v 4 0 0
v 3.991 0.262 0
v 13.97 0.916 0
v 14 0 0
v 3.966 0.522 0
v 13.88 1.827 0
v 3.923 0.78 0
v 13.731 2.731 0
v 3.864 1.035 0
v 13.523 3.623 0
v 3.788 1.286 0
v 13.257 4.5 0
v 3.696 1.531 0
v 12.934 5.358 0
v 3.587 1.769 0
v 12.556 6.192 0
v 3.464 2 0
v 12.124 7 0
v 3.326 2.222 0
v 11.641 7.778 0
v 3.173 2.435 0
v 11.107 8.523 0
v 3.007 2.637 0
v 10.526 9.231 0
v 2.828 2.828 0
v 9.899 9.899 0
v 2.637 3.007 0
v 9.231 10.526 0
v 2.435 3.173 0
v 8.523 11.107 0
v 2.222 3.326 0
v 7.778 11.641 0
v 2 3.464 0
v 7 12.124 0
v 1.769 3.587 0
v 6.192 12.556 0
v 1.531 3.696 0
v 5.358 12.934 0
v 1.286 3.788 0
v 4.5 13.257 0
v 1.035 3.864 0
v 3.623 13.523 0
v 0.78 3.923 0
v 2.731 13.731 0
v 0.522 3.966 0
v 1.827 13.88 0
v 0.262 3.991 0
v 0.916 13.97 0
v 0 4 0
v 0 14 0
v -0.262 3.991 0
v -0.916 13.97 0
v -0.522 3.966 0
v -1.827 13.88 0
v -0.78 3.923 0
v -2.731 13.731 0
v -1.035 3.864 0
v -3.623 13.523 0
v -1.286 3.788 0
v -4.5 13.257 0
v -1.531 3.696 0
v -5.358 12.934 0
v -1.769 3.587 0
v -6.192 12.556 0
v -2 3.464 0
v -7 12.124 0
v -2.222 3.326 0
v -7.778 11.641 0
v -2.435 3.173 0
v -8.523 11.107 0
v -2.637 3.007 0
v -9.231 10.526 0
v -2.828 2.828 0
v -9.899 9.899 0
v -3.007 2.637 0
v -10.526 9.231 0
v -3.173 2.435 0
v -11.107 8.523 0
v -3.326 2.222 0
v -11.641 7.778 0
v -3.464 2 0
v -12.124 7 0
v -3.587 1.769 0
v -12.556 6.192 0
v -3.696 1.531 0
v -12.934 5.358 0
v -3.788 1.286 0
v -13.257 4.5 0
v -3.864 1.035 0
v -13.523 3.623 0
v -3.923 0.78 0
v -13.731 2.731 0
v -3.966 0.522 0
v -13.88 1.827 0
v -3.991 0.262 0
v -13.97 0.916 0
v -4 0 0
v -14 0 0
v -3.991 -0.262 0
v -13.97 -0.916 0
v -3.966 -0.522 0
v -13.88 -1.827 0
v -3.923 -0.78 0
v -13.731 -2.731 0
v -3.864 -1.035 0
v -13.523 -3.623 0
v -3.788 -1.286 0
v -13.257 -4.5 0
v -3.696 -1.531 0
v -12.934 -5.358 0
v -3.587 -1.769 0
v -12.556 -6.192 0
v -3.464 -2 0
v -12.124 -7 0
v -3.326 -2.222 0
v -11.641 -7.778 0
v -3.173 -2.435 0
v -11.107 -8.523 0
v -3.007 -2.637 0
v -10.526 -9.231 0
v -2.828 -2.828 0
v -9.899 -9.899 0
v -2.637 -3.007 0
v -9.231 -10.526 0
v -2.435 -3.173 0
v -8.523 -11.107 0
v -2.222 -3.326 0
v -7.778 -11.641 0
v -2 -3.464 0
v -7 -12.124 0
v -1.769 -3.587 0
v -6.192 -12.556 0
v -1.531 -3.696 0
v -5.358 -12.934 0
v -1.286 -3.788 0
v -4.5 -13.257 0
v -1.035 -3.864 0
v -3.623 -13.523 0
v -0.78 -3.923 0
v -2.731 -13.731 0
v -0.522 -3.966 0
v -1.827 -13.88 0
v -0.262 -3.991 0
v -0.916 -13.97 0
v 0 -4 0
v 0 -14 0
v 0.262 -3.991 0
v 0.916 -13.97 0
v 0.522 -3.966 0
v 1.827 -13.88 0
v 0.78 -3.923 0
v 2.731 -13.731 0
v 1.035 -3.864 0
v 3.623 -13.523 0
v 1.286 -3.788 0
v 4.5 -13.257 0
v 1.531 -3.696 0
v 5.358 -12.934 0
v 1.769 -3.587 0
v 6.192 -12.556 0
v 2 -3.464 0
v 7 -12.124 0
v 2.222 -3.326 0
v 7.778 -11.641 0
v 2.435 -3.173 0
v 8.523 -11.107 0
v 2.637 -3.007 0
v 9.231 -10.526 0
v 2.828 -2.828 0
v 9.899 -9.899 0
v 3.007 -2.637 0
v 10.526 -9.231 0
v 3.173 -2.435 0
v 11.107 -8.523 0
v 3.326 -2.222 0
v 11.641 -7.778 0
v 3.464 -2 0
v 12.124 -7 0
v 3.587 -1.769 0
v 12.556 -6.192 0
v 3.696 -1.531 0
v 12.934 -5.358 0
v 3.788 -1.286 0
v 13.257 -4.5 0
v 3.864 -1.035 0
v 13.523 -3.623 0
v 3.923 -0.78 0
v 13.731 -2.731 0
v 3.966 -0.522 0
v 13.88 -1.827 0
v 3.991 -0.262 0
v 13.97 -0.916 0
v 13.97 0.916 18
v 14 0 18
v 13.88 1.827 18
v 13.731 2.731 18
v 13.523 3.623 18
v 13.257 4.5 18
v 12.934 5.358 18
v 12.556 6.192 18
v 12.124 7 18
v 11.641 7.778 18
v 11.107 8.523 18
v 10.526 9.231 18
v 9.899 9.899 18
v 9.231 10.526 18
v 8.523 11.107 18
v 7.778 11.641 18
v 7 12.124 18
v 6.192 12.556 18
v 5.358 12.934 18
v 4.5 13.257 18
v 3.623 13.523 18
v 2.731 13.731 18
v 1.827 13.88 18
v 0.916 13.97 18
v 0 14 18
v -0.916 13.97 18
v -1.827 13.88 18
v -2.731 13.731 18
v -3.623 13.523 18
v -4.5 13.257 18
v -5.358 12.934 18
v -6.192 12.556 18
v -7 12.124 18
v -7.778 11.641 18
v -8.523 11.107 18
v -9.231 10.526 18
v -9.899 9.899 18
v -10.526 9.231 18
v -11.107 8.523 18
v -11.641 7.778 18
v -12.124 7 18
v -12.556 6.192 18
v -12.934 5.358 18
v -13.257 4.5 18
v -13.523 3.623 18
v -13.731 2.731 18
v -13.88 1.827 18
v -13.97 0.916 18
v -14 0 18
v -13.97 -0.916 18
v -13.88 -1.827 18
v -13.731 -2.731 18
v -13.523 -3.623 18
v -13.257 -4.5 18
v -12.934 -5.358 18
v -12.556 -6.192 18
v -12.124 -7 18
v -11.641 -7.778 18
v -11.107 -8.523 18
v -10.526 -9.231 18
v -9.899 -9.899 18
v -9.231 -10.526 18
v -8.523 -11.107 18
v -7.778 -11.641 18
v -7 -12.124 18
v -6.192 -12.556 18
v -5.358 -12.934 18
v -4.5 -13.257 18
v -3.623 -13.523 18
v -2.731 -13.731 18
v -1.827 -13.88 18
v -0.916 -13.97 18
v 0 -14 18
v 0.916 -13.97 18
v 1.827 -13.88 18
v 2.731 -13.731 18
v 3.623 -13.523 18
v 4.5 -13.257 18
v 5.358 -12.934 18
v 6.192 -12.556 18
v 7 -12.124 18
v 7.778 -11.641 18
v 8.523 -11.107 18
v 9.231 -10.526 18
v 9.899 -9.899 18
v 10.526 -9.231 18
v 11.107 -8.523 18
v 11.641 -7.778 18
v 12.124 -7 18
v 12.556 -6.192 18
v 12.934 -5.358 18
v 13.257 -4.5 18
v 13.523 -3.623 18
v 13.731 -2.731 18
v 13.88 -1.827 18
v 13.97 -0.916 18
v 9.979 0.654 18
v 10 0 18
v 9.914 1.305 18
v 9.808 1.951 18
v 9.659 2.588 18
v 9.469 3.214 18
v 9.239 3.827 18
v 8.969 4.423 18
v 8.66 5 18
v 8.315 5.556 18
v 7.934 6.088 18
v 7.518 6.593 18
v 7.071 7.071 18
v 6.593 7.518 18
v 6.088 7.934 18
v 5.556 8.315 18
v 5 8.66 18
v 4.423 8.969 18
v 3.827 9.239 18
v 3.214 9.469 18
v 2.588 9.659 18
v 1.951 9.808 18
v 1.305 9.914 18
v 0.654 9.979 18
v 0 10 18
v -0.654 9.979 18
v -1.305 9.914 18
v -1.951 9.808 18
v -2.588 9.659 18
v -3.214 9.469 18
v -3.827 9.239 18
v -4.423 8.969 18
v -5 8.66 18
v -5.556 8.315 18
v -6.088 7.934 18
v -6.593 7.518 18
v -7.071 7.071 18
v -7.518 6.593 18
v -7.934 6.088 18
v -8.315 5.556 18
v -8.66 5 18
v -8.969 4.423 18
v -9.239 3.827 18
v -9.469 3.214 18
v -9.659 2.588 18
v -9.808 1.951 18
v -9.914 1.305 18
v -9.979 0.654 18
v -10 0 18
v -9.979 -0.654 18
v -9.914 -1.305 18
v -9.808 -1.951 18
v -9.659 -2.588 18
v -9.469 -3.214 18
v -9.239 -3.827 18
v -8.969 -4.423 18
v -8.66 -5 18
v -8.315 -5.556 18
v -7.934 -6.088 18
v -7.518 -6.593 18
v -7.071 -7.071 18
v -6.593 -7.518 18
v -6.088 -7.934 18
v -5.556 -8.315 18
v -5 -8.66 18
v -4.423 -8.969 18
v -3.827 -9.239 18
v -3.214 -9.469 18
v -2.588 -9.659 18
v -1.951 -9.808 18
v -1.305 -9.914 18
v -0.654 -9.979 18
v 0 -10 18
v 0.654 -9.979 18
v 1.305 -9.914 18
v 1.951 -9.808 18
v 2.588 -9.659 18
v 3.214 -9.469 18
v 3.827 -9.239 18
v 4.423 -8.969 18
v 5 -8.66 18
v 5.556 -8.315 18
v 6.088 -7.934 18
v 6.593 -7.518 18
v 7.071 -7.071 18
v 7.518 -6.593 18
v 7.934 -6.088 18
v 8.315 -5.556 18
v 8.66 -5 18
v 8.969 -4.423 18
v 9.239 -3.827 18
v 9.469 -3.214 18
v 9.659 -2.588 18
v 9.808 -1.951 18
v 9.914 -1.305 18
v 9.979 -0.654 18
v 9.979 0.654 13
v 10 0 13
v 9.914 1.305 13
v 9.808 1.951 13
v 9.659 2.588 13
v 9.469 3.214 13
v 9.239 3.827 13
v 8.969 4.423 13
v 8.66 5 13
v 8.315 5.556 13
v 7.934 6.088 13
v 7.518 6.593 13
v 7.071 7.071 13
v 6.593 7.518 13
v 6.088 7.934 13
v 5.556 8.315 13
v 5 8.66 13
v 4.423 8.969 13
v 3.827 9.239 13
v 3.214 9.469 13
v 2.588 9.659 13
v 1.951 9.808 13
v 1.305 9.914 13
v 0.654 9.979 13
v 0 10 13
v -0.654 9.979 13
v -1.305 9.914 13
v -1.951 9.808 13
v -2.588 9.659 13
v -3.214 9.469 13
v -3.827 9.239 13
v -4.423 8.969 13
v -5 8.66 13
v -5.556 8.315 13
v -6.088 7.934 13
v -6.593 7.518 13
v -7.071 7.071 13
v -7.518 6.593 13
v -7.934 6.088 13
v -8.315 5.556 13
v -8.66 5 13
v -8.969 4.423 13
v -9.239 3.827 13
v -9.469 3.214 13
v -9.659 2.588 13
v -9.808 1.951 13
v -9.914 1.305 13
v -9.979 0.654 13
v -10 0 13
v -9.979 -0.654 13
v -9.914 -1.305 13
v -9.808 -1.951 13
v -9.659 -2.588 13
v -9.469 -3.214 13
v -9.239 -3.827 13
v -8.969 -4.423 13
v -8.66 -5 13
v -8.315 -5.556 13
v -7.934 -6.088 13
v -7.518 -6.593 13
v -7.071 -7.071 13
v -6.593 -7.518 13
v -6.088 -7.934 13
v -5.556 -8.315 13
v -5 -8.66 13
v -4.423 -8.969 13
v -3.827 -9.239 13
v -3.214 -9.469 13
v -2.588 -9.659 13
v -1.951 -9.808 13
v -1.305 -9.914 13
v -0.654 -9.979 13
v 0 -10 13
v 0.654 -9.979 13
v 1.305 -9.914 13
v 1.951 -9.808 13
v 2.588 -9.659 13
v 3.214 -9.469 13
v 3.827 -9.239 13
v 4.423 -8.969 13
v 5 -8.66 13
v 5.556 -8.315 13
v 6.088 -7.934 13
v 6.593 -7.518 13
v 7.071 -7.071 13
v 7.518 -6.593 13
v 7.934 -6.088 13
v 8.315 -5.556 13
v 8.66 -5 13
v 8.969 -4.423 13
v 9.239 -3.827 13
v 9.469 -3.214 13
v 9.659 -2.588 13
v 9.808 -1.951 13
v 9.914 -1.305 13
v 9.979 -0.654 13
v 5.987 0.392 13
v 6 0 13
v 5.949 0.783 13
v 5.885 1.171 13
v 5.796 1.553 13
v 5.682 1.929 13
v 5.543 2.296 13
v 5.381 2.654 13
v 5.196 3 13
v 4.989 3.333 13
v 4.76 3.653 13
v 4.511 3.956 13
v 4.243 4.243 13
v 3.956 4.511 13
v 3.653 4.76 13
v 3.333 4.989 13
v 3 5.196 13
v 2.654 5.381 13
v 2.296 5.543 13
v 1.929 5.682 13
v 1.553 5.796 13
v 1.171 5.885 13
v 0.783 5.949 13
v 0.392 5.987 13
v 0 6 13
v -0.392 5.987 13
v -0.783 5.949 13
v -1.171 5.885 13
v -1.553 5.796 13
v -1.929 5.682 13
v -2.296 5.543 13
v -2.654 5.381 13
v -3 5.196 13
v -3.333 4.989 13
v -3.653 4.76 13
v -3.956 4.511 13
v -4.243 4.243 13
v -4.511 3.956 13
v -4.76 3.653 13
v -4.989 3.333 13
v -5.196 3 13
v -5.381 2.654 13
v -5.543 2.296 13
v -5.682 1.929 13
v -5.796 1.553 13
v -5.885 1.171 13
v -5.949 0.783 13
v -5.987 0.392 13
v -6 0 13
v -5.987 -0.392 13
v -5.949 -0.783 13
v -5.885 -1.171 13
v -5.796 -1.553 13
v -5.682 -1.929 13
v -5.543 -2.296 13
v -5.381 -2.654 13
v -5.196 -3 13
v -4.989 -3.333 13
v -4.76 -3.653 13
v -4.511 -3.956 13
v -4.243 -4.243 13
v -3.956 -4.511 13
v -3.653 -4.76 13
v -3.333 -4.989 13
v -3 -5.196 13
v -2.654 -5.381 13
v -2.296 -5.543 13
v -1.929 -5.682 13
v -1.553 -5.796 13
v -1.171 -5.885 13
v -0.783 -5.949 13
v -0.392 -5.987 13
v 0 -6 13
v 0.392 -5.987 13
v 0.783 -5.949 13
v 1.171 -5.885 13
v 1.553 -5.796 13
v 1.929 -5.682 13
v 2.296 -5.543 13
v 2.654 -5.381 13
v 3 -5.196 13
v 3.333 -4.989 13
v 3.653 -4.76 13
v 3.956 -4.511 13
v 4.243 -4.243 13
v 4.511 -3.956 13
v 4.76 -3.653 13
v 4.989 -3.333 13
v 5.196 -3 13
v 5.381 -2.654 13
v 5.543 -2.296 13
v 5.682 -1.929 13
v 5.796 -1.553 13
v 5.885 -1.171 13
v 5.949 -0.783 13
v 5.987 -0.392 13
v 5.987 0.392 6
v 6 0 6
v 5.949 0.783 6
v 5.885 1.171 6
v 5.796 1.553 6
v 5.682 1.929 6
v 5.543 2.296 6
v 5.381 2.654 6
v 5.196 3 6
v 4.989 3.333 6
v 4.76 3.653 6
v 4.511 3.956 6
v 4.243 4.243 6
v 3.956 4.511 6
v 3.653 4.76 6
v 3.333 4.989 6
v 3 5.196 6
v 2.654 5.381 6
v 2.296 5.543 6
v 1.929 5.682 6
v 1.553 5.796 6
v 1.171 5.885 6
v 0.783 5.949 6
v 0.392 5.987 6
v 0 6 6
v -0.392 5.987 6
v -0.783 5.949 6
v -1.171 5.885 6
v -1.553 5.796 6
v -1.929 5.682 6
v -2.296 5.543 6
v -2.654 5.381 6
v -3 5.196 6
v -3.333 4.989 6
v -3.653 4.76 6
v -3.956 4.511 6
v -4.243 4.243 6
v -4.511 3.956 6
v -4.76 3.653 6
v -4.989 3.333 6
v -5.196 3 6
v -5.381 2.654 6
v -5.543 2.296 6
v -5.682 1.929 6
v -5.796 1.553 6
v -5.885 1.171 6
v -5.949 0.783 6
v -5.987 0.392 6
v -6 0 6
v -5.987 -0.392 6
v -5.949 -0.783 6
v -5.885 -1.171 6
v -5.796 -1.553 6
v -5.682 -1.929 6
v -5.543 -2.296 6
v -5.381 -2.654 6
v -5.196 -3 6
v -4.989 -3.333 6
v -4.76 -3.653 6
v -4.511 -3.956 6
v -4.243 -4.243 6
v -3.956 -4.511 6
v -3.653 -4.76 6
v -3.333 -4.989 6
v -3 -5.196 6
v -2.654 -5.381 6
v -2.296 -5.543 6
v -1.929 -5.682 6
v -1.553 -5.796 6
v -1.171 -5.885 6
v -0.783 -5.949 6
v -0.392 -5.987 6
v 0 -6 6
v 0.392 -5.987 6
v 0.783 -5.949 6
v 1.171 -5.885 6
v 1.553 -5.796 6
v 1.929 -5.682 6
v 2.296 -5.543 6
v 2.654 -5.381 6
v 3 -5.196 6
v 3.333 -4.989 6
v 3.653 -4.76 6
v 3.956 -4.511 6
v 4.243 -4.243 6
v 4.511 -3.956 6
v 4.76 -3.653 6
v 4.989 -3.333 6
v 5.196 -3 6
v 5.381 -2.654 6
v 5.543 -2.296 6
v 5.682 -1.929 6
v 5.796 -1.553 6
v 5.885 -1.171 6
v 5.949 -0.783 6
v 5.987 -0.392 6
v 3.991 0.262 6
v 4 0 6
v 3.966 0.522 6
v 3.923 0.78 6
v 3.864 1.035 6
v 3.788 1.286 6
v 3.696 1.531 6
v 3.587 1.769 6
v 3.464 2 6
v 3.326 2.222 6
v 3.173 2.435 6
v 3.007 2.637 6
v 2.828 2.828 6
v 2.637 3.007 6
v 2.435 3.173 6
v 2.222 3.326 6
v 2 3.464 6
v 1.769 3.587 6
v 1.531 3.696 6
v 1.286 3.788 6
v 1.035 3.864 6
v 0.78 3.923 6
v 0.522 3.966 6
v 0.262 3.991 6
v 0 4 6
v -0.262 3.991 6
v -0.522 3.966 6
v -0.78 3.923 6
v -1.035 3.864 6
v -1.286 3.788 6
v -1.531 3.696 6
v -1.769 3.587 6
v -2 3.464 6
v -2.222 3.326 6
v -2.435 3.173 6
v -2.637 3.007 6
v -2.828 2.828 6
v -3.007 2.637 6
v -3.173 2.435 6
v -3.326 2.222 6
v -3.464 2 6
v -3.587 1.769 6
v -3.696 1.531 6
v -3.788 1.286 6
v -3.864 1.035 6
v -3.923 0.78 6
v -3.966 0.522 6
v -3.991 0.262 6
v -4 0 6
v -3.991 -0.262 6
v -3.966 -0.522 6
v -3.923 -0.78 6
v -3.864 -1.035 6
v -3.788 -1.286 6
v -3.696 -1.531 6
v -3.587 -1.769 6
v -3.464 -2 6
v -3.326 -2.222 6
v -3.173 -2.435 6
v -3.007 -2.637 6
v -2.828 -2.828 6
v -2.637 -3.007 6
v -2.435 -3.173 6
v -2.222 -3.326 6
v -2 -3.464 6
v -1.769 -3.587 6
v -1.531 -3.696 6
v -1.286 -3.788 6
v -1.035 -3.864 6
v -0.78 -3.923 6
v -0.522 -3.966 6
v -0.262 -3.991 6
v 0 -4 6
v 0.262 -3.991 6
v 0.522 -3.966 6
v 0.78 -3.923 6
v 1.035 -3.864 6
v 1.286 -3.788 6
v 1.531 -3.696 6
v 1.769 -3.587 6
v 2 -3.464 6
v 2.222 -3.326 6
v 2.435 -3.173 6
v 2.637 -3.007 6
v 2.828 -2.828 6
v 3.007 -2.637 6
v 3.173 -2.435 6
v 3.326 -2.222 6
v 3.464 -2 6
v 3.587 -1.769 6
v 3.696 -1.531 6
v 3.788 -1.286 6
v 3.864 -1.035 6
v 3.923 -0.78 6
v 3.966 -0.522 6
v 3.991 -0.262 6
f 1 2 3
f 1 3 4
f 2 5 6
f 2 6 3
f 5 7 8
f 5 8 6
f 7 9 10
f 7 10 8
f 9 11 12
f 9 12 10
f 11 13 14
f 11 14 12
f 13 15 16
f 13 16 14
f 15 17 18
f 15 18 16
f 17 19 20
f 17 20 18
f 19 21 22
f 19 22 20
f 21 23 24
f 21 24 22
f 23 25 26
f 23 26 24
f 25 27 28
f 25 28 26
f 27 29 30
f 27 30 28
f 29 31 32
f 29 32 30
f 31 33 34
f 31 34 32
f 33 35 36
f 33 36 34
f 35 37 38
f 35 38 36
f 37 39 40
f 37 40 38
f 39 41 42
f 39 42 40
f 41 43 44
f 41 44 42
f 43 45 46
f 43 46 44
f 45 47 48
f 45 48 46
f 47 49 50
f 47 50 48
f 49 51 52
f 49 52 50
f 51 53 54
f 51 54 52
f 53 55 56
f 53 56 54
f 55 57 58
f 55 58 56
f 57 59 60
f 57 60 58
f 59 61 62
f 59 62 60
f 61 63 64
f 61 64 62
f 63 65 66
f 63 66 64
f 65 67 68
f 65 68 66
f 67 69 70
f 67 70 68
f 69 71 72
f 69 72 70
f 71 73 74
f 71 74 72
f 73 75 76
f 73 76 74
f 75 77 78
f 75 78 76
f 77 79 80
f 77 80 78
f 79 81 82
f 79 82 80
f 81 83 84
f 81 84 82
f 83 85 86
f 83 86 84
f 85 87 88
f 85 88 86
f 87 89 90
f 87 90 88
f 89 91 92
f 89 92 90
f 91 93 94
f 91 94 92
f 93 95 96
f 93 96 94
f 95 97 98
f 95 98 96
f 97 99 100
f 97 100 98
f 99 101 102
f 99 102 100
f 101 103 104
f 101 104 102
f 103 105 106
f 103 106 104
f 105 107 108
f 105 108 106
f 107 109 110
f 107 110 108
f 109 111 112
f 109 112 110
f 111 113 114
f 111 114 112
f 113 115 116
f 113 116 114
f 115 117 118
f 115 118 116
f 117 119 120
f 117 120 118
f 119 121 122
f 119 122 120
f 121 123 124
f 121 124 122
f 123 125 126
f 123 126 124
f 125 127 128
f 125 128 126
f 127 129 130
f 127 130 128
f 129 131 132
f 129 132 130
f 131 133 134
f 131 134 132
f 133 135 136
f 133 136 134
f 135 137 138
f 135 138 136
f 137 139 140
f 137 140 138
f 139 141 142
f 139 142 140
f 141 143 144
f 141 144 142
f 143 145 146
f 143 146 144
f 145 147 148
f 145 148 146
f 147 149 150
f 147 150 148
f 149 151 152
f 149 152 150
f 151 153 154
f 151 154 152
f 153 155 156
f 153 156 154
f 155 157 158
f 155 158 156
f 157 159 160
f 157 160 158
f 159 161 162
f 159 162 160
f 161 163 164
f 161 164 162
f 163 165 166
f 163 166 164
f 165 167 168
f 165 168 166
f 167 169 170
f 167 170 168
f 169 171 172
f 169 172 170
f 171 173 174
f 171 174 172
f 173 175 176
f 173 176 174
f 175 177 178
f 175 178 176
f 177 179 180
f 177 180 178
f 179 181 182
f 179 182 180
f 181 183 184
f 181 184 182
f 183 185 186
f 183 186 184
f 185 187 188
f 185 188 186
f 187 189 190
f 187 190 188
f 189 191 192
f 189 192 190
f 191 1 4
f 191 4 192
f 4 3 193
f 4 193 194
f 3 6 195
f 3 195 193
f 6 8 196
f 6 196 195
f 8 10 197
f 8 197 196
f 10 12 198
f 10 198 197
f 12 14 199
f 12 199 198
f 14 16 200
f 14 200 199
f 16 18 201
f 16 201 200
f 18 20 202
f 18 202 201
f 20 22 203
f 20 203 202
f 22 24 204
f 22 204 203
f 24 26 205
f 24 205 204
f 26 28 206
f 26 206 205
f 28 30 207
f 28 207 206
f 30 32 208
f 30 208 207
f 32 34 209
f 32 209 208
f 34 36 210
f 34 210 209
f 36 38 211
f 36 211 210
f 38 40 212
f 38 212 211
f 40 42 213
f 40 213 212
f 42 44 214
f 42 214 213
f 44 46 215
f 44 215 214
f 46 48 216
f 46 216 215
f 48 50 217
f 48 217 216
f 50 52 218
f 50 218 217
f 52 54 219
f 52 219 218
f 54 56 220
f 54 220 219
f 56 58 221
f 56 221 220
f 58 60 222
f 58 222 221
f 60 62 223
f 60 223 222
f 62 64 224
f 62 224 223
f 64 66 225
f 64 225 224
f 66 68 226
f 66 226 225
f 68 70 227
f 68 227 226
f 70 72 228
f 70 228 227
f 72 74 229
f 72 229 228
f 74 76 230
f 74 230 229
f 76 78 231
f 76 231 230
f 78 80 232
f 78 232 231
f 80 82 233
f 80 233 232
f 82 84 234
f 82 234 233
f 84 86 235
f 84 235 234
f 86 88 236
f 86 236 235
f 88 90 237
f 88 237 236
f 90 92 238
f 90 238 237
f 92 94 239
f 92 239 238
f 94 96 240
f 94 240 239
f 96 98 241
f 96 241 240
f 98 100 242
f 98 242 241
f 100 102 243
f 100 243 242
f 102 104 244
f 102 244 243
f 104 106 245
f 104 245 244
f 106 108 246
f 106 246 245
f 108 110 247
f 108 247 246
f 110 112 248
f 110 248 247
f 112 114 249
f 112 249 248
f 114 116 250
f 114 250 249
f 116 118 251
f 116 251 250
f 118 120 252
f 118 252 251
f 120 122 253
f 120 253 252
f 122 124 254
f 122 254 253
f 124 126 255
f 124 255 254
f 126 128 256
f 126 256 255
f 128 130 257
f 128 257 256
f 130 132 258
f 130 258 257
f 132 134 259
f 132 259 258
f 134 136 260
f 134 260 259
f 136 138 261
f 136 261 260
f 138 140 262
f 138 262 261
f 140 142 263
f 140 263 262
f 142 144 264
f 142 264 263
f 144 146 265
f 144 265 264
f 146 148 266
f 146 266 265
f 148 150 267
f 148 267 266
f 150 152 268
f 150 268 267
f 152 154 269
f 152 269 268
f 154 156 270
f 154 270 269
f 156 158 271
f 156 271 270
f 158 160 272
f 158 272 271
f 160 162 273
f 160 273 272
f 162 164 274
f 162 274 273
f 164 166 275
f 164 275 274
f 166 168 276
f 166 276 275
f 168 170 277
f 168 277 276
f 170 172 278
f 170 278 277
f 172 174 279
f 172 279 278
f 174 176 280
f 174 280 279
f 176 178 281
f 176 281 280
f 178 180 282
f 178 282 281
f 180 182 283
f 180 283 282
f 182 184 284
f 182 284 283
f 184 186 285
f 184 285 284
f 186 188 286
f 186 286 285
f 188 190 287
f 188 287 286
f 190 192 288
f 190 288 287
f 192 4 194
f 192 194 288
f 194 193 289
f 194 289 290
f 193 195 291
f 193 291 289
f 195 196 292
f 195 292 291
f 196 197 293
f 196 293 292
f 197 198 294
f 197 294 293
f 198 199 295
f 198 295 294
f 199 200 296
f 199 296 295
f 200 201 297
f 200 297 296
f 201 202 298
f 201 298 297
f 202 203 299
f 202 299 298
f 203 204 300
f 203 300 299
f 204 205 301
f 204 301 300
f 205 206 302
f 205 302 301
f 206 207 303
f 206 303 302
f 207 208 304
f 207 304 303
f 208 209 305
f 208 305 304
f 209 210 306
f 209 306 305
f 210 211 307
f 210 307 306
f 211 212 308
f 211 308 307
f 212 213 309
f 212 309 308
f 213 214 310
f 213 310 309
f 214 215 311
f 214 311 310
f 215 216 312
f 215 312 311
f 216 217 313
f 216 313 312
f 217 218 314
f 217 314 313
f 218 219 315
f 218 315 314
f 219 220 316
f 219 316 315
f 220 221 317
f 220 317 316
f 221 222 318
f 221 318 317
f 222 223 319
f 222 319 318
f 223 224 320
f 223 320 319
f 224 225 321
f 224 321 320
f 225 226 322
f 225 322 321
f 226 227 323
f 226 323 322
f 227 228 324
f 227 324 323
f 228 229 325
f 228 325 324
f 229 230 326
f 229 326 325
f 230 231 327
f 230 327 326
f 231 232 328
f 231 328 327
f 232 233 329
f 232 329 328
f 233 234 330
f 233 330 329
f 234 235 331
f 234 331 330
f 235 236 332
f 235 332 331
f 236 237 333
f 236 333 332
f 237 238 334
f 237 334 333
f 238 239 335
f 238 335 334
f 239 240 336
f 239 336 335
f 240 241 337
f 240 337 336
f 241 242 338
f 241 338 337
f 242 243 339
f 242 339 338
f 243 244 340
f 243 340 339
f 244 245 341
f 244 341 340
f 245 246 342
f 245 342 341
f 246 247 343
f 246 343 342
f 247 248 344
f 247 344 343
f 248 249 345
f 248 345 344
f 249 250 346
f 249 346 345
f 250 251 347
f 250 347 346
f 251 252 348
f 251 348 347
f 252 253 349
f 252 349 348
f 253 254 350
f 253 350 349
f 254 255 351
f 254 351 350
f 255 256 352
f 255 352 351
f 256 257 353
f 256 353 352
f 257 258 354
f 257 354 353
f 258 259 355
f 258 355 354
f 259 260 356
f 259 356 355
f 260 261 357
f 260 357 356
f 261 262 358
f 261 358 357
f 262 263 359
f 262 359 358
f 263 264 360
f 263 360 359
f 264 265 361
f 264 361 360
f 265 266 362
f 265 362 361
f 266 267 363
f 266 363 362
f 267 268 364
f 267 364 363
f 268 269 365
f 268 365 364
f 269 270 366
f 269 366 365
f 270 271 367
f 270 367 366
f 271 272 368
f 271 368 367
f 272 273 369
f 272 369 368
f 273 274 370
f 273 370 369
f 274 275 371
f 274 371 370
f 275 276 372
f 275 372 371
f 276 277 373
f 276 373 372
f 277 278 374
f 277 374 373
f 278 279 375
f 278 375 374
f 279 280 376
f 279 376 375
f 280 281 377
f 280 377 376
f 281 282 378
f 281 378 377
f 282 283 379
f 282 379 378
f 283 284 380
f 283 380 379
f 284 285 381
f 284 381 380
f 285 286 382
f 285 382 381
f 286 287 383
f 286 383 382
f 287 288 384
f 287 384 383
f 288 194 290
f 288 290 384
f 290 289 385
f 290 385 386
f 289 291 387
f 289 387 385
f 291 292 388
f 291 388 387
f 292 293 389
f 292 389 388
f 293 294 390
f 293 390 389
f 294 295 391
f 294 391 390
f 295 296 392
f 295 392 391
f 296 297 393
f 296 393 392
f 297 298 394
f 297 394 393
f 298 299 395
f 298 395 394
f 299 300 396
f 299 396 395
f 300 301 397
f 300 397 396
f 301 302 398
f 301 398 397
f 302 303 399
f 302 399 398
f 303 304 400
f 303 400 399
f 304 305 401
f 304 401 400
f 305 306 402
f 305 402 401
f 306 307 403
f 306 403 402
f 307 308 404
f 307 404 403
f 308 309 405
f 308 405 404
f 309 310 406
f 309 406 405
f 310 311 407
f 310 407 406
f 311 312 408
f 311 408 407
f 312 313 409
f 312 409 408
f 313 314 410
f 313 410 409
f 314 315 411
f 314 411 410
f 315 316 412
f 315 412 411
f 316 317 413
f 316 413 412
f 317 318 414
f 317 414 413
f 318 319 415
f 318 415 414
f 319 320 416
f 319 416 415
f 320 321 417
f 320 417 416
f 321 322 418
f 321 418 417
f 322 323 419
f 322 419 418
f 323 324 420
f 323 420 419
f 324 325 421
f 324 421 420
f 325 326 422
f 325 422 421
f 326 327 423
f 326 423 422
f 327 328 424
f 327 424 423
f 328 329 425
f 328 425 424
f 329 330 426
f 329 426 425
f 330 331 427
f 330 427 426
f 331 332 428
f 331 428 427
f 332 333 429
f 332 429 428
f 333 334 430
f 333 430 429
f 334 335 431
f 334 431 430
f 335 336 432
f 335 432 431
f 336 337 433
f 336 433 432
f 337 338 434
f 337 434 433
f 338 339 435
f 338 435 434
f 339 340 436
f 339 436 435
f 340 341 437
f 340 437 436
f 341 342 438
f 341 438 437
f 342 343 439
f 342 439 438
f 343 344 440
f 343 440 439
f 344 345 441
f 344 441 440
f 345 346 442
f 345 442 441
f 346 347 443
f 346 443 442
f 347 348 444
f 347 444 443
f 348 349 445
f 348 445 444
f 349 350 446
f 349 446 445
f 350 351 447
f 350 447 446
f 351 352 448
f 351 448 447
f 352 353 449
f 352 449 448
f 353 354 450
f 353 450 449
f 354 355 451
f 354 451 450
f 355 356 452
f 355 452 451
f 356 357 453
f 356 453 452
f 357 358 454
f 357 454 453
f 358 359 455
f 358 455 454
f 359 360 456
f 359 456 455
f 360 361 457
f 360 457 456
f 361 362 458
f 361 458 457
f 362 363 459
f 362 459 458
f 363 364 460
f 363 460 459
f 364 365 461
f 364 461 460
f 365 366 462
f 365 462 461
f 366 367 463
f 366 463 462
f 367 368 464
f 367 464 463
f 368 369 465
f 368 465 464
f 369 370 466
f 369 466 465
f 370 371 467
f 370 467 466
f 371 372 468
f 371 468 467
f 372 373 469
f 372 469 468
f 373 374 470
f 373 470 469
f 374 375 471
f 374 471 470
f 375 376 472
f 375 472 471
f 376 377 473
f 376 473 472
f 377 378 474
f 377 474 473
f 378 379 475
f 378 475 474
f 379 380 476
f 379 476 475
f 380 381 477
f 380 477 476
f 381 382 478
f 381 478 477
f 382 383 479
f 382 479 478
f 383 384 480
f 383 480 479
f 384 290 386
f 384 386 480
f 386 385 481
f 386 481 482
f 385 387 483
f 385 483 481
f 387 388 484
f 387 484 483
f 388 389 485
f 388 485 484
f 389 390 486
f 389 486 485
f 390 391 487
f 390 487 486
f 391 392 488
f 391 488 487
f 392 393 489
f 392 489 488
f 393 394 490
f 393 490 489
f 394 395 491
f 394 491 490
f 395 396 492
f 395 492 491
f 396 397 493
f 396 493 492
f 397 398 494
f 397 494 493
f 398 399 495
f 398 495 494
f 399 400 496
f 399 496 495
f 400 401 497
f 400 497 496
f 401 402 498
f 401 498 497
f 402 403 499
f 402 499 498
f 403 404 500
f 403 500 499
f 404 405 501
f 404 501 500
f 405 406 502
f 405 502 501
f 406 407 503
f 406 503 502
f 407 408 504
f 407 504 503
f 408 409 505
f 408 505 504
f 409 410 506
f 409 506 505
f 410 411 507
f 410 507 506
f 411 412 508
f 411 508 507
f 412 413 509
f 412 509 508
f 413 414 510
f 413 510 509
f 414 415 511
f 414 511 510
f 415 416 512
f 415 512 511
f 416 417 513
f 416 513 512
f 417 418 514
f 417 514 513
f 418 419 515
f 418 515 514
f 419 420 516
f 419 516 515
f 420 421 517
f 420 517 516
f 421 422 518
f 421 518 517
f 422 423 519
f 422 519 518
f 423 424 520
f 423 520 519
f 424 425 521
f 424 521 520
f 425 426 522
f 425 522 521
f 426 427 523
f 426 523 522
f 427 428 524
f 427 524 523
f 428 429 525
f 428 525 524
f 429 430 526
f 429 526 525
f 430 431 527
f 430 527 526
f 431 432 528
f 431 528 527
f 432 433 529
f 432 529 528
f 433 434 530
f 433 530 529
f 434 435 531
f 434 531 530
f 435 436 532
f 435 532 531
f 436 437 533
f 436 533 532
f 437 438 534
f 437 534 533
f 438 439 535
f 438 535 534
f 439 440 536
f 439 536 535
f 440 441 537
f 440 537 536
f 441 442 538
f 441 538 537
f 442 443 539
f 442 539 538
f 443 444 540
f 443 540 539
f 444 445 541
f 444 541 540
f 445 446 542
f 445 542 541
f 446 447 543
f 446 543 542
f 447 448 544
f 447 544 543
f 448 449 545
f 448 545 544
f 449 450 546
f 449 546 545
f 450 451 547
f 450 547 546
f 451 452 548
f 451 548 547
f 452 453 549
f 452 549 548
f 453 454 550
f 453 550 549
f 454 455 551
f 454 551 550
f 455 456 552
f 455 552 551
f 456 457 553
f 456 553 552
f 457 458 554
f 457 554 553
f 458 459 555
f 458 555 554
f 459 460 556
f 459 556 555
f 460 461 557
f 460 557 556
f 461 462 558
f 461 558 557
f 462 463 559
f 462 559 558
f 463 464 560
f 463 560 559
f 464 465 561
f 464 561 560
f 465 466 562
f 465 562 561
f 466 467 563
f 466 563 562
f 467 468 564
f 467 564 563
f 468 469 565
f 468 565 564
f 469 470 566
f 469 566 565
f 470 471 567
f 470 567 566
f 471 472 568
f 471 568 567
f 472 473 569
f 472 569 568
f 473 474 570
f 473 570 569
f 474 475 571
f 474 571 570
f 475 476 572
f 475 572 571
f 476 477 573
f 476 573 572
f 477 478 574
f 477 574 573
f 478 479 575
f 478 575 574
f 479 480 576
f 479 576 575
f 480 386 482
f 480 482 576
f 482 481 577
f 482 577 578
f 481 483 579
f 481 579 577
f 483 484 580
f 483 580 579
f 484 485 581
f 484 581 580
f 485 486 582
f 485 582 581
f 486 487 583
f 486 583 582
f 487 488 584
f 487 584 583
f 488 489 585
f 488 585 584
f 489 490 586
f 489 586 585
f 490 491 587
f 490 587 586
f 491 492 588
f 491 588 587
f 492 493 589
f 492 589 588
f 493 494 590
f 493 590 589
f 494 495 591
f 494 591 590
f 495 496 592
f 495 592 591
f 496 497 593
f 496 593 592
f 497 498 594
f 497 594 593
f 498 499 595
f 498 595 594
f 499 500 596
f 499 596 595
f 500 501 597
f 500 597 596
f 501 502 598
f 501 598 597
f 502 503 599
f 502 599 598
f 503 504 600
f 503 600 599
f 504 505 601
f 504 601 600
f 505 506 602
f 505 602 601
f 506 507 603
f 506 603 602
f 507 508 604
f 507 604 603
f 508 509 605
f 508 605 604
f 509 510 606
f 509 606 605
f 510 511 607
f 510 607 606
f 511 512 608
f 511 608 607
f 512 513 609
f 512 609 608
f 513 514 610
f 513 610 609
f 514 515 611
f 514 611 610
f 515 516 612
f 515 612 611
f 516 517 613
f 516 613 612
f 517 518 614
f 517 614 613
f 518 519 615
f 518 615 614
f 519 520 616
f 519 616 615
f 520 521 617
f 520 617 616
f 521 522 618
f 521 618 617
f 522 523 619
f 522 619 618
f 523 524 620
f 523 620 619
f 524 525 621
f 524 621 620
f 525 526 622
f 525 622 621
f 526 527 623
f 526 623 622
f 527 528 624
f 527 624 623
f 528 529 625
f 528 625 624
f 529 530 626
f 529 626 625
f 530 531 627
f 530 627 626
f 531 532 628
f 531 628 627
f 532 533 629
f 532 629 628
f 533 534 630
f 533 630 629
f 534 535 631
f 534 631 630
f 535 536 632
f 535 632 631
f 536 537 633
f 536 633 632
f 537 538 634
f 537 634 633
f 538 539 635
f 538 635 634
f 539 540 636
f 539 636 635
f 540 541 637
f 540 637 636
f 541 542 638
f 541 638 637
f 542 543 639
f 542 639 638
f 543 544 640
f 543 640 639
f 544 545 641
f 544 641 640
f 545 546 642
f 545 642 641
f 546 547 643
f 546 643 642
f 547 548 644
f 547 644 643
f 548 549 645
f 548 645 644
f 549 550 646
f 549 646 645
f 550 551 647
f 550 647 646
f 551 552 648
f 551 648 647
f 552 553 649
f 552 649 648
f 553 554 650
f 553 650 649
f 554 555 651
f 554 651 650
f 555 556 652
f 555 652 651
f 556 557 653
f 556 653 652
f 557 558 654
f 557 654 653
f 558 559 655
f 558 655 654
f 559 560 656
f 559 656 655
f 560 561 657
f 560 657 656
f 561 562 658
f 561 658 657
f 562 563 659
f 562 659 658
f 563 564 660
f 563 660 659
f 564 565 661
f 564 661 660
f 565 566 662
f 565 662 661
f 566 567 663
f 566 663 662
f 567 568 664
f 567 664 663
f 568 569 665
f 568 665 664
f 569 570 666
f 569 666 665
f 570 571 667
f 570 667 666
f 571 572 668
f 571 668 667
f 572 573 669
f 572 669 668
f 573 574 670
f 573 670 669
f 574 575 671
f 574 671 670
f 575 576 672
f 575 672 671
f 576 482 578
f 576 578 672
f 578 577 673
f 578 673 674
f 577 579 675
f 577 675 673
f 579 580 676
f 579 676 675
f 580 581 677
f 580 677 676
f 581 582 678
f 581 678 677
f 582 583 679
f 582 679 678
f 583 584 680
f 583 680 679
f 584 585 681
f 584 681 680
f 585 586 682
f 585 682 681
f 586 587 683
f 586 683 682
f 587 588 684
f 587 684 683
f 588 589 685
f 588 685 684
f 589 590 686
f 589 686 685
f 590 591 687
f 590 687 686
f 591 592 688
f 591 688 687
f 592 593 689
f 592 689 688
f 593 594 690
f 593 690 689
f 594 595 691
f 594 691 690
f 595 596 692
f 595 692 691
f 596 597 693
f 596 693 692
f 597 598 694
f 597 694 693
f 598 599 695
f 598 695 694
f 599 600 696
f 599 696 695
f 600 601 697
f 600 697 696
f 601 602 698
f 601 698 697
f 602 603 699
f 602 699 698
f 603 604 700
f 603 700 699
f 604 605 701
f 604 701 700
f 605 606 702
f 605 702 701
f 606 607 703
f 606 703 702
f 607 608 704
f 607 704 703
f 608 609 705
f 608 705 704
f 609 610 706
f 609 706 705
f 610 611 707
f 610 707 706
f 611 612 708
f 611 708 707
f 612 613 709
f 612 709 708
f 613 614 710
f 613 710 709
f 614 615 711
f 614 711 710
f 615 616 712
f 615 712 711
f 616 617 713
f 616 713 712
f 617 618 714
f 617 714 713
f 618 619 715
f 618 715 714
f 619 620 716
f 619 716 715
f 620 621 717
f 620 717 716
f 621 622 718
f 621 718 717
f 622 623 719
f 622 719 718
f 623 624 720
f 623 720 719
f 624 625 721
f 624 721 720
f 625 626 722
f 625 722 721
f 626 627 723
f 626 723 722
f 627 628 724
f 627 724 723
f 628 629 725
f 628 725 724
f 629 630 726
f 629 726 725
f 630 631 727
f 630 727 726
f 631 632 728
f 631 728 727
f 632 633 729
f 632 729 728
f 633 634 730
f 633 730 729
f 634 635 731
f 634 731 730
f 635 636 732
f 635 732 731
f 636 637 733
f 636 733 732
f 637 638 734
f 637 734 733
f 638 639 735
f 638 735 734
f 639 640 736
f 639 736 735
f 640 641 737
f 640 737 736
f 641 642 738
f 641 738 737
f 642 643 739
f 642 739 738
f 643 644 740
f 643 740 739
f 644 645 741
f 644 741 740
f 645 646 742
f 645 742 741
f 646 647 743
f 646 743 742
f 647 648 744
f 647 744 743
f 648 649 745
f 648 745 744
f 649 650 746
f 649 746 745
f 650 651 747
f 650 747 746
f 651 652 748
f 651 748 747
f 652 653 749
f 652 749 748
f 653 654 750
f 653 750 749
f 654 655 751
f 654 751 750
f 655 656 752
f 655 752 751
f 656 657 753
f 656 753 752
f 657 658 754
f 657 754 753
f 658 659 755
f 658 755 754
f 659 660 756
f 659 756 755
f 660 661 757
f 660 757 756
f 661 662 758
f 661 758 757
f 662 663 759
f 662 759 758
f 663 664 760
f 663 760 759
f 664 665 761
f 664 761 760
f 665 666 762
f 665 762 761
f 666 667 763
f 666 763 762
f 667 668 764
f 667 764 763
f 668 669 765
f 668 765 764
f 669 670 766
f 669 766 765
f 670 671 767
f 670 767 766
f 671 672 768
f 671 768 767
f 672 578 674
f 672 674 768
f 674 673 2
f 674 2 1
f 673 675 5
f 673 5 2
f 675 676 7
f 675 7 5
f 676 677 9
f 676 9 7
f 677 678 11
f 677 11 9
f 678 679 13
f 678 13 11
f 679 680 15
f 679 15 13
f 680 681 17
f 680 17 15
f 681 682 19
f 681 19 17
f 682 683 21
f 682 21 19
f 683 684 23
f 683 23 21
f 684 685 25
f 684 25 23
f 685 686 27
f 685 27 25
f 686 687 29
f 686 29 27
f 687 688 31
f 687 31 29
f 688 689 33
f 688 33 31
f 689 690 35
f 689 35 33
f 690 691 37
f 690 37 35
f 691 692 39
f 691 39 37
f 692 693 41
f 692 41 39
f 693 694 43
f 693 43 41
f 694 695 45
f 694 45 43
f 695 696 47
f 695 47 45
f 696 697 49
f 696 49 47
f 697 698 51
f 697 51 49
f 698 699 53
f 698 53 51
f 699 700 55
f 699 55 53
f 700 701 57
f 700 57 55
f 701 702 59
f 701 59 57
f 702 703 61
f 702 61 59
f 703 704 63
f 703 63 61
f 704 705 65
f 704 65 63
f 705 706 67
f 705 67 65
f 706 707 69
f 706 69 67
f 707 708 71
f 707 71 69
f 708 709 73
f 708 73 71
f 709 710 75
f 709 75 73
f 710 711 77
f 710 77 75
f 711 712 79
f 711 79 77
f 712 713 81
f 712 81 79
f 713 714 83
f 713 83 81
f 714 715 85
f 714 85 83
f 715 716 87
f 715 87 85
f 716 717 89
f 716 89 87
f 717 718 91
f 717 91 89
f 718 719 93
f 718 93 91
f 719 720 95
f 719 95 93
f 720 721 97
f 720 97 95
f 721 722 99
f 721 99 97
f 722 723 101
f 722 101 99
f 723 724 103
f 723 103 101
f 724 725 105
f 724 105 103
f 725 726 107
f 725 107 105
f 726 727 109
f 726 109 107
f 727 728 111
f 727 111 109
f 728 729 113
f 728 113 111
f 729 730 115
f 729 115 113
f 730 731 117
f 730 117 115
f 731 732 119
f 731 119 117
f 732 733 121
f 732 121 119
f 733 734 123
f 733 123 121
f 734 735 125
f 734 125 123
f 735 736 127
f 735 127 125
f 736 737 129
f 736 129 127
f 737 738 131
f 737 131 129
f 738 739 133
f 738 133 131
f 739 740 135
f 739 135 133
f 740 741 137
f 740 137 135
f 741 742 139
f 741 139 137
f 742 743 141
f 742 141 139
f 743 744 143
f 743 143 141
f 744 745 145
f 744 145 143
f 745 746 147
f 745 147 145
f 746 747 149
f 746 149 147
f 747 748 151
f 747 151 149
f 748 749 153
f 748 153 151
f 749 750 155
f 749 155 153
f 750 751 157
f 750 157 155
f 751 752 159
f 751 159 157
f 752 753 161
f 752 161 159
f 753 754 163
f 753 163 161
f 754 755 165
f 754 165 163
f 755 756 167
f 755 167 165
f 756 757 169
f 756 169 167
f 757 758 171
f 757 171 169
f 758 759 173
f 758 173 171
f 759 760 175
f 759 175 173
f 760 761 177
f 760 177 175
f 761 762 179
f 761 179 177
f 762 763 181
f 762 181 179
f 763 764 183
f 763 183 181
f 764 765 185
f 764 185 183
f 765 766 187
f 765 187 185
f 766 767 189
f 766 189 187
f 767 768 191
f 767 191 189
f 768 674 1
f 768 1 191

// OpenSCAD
// Original MechIntel educational model. CC0-1.0. Units: mm.
// Not a standardized or load-rated component.
$fn=96;
// Section points: [radius, height], mm. Edit to change the profile.
section=[[4, 0], [14, 0], [14, 18], [10, 18], [10, 13], [6, 13], [6, 6], [4, 6]];
rotate_extrude($fn=96) polygon(points=section);
